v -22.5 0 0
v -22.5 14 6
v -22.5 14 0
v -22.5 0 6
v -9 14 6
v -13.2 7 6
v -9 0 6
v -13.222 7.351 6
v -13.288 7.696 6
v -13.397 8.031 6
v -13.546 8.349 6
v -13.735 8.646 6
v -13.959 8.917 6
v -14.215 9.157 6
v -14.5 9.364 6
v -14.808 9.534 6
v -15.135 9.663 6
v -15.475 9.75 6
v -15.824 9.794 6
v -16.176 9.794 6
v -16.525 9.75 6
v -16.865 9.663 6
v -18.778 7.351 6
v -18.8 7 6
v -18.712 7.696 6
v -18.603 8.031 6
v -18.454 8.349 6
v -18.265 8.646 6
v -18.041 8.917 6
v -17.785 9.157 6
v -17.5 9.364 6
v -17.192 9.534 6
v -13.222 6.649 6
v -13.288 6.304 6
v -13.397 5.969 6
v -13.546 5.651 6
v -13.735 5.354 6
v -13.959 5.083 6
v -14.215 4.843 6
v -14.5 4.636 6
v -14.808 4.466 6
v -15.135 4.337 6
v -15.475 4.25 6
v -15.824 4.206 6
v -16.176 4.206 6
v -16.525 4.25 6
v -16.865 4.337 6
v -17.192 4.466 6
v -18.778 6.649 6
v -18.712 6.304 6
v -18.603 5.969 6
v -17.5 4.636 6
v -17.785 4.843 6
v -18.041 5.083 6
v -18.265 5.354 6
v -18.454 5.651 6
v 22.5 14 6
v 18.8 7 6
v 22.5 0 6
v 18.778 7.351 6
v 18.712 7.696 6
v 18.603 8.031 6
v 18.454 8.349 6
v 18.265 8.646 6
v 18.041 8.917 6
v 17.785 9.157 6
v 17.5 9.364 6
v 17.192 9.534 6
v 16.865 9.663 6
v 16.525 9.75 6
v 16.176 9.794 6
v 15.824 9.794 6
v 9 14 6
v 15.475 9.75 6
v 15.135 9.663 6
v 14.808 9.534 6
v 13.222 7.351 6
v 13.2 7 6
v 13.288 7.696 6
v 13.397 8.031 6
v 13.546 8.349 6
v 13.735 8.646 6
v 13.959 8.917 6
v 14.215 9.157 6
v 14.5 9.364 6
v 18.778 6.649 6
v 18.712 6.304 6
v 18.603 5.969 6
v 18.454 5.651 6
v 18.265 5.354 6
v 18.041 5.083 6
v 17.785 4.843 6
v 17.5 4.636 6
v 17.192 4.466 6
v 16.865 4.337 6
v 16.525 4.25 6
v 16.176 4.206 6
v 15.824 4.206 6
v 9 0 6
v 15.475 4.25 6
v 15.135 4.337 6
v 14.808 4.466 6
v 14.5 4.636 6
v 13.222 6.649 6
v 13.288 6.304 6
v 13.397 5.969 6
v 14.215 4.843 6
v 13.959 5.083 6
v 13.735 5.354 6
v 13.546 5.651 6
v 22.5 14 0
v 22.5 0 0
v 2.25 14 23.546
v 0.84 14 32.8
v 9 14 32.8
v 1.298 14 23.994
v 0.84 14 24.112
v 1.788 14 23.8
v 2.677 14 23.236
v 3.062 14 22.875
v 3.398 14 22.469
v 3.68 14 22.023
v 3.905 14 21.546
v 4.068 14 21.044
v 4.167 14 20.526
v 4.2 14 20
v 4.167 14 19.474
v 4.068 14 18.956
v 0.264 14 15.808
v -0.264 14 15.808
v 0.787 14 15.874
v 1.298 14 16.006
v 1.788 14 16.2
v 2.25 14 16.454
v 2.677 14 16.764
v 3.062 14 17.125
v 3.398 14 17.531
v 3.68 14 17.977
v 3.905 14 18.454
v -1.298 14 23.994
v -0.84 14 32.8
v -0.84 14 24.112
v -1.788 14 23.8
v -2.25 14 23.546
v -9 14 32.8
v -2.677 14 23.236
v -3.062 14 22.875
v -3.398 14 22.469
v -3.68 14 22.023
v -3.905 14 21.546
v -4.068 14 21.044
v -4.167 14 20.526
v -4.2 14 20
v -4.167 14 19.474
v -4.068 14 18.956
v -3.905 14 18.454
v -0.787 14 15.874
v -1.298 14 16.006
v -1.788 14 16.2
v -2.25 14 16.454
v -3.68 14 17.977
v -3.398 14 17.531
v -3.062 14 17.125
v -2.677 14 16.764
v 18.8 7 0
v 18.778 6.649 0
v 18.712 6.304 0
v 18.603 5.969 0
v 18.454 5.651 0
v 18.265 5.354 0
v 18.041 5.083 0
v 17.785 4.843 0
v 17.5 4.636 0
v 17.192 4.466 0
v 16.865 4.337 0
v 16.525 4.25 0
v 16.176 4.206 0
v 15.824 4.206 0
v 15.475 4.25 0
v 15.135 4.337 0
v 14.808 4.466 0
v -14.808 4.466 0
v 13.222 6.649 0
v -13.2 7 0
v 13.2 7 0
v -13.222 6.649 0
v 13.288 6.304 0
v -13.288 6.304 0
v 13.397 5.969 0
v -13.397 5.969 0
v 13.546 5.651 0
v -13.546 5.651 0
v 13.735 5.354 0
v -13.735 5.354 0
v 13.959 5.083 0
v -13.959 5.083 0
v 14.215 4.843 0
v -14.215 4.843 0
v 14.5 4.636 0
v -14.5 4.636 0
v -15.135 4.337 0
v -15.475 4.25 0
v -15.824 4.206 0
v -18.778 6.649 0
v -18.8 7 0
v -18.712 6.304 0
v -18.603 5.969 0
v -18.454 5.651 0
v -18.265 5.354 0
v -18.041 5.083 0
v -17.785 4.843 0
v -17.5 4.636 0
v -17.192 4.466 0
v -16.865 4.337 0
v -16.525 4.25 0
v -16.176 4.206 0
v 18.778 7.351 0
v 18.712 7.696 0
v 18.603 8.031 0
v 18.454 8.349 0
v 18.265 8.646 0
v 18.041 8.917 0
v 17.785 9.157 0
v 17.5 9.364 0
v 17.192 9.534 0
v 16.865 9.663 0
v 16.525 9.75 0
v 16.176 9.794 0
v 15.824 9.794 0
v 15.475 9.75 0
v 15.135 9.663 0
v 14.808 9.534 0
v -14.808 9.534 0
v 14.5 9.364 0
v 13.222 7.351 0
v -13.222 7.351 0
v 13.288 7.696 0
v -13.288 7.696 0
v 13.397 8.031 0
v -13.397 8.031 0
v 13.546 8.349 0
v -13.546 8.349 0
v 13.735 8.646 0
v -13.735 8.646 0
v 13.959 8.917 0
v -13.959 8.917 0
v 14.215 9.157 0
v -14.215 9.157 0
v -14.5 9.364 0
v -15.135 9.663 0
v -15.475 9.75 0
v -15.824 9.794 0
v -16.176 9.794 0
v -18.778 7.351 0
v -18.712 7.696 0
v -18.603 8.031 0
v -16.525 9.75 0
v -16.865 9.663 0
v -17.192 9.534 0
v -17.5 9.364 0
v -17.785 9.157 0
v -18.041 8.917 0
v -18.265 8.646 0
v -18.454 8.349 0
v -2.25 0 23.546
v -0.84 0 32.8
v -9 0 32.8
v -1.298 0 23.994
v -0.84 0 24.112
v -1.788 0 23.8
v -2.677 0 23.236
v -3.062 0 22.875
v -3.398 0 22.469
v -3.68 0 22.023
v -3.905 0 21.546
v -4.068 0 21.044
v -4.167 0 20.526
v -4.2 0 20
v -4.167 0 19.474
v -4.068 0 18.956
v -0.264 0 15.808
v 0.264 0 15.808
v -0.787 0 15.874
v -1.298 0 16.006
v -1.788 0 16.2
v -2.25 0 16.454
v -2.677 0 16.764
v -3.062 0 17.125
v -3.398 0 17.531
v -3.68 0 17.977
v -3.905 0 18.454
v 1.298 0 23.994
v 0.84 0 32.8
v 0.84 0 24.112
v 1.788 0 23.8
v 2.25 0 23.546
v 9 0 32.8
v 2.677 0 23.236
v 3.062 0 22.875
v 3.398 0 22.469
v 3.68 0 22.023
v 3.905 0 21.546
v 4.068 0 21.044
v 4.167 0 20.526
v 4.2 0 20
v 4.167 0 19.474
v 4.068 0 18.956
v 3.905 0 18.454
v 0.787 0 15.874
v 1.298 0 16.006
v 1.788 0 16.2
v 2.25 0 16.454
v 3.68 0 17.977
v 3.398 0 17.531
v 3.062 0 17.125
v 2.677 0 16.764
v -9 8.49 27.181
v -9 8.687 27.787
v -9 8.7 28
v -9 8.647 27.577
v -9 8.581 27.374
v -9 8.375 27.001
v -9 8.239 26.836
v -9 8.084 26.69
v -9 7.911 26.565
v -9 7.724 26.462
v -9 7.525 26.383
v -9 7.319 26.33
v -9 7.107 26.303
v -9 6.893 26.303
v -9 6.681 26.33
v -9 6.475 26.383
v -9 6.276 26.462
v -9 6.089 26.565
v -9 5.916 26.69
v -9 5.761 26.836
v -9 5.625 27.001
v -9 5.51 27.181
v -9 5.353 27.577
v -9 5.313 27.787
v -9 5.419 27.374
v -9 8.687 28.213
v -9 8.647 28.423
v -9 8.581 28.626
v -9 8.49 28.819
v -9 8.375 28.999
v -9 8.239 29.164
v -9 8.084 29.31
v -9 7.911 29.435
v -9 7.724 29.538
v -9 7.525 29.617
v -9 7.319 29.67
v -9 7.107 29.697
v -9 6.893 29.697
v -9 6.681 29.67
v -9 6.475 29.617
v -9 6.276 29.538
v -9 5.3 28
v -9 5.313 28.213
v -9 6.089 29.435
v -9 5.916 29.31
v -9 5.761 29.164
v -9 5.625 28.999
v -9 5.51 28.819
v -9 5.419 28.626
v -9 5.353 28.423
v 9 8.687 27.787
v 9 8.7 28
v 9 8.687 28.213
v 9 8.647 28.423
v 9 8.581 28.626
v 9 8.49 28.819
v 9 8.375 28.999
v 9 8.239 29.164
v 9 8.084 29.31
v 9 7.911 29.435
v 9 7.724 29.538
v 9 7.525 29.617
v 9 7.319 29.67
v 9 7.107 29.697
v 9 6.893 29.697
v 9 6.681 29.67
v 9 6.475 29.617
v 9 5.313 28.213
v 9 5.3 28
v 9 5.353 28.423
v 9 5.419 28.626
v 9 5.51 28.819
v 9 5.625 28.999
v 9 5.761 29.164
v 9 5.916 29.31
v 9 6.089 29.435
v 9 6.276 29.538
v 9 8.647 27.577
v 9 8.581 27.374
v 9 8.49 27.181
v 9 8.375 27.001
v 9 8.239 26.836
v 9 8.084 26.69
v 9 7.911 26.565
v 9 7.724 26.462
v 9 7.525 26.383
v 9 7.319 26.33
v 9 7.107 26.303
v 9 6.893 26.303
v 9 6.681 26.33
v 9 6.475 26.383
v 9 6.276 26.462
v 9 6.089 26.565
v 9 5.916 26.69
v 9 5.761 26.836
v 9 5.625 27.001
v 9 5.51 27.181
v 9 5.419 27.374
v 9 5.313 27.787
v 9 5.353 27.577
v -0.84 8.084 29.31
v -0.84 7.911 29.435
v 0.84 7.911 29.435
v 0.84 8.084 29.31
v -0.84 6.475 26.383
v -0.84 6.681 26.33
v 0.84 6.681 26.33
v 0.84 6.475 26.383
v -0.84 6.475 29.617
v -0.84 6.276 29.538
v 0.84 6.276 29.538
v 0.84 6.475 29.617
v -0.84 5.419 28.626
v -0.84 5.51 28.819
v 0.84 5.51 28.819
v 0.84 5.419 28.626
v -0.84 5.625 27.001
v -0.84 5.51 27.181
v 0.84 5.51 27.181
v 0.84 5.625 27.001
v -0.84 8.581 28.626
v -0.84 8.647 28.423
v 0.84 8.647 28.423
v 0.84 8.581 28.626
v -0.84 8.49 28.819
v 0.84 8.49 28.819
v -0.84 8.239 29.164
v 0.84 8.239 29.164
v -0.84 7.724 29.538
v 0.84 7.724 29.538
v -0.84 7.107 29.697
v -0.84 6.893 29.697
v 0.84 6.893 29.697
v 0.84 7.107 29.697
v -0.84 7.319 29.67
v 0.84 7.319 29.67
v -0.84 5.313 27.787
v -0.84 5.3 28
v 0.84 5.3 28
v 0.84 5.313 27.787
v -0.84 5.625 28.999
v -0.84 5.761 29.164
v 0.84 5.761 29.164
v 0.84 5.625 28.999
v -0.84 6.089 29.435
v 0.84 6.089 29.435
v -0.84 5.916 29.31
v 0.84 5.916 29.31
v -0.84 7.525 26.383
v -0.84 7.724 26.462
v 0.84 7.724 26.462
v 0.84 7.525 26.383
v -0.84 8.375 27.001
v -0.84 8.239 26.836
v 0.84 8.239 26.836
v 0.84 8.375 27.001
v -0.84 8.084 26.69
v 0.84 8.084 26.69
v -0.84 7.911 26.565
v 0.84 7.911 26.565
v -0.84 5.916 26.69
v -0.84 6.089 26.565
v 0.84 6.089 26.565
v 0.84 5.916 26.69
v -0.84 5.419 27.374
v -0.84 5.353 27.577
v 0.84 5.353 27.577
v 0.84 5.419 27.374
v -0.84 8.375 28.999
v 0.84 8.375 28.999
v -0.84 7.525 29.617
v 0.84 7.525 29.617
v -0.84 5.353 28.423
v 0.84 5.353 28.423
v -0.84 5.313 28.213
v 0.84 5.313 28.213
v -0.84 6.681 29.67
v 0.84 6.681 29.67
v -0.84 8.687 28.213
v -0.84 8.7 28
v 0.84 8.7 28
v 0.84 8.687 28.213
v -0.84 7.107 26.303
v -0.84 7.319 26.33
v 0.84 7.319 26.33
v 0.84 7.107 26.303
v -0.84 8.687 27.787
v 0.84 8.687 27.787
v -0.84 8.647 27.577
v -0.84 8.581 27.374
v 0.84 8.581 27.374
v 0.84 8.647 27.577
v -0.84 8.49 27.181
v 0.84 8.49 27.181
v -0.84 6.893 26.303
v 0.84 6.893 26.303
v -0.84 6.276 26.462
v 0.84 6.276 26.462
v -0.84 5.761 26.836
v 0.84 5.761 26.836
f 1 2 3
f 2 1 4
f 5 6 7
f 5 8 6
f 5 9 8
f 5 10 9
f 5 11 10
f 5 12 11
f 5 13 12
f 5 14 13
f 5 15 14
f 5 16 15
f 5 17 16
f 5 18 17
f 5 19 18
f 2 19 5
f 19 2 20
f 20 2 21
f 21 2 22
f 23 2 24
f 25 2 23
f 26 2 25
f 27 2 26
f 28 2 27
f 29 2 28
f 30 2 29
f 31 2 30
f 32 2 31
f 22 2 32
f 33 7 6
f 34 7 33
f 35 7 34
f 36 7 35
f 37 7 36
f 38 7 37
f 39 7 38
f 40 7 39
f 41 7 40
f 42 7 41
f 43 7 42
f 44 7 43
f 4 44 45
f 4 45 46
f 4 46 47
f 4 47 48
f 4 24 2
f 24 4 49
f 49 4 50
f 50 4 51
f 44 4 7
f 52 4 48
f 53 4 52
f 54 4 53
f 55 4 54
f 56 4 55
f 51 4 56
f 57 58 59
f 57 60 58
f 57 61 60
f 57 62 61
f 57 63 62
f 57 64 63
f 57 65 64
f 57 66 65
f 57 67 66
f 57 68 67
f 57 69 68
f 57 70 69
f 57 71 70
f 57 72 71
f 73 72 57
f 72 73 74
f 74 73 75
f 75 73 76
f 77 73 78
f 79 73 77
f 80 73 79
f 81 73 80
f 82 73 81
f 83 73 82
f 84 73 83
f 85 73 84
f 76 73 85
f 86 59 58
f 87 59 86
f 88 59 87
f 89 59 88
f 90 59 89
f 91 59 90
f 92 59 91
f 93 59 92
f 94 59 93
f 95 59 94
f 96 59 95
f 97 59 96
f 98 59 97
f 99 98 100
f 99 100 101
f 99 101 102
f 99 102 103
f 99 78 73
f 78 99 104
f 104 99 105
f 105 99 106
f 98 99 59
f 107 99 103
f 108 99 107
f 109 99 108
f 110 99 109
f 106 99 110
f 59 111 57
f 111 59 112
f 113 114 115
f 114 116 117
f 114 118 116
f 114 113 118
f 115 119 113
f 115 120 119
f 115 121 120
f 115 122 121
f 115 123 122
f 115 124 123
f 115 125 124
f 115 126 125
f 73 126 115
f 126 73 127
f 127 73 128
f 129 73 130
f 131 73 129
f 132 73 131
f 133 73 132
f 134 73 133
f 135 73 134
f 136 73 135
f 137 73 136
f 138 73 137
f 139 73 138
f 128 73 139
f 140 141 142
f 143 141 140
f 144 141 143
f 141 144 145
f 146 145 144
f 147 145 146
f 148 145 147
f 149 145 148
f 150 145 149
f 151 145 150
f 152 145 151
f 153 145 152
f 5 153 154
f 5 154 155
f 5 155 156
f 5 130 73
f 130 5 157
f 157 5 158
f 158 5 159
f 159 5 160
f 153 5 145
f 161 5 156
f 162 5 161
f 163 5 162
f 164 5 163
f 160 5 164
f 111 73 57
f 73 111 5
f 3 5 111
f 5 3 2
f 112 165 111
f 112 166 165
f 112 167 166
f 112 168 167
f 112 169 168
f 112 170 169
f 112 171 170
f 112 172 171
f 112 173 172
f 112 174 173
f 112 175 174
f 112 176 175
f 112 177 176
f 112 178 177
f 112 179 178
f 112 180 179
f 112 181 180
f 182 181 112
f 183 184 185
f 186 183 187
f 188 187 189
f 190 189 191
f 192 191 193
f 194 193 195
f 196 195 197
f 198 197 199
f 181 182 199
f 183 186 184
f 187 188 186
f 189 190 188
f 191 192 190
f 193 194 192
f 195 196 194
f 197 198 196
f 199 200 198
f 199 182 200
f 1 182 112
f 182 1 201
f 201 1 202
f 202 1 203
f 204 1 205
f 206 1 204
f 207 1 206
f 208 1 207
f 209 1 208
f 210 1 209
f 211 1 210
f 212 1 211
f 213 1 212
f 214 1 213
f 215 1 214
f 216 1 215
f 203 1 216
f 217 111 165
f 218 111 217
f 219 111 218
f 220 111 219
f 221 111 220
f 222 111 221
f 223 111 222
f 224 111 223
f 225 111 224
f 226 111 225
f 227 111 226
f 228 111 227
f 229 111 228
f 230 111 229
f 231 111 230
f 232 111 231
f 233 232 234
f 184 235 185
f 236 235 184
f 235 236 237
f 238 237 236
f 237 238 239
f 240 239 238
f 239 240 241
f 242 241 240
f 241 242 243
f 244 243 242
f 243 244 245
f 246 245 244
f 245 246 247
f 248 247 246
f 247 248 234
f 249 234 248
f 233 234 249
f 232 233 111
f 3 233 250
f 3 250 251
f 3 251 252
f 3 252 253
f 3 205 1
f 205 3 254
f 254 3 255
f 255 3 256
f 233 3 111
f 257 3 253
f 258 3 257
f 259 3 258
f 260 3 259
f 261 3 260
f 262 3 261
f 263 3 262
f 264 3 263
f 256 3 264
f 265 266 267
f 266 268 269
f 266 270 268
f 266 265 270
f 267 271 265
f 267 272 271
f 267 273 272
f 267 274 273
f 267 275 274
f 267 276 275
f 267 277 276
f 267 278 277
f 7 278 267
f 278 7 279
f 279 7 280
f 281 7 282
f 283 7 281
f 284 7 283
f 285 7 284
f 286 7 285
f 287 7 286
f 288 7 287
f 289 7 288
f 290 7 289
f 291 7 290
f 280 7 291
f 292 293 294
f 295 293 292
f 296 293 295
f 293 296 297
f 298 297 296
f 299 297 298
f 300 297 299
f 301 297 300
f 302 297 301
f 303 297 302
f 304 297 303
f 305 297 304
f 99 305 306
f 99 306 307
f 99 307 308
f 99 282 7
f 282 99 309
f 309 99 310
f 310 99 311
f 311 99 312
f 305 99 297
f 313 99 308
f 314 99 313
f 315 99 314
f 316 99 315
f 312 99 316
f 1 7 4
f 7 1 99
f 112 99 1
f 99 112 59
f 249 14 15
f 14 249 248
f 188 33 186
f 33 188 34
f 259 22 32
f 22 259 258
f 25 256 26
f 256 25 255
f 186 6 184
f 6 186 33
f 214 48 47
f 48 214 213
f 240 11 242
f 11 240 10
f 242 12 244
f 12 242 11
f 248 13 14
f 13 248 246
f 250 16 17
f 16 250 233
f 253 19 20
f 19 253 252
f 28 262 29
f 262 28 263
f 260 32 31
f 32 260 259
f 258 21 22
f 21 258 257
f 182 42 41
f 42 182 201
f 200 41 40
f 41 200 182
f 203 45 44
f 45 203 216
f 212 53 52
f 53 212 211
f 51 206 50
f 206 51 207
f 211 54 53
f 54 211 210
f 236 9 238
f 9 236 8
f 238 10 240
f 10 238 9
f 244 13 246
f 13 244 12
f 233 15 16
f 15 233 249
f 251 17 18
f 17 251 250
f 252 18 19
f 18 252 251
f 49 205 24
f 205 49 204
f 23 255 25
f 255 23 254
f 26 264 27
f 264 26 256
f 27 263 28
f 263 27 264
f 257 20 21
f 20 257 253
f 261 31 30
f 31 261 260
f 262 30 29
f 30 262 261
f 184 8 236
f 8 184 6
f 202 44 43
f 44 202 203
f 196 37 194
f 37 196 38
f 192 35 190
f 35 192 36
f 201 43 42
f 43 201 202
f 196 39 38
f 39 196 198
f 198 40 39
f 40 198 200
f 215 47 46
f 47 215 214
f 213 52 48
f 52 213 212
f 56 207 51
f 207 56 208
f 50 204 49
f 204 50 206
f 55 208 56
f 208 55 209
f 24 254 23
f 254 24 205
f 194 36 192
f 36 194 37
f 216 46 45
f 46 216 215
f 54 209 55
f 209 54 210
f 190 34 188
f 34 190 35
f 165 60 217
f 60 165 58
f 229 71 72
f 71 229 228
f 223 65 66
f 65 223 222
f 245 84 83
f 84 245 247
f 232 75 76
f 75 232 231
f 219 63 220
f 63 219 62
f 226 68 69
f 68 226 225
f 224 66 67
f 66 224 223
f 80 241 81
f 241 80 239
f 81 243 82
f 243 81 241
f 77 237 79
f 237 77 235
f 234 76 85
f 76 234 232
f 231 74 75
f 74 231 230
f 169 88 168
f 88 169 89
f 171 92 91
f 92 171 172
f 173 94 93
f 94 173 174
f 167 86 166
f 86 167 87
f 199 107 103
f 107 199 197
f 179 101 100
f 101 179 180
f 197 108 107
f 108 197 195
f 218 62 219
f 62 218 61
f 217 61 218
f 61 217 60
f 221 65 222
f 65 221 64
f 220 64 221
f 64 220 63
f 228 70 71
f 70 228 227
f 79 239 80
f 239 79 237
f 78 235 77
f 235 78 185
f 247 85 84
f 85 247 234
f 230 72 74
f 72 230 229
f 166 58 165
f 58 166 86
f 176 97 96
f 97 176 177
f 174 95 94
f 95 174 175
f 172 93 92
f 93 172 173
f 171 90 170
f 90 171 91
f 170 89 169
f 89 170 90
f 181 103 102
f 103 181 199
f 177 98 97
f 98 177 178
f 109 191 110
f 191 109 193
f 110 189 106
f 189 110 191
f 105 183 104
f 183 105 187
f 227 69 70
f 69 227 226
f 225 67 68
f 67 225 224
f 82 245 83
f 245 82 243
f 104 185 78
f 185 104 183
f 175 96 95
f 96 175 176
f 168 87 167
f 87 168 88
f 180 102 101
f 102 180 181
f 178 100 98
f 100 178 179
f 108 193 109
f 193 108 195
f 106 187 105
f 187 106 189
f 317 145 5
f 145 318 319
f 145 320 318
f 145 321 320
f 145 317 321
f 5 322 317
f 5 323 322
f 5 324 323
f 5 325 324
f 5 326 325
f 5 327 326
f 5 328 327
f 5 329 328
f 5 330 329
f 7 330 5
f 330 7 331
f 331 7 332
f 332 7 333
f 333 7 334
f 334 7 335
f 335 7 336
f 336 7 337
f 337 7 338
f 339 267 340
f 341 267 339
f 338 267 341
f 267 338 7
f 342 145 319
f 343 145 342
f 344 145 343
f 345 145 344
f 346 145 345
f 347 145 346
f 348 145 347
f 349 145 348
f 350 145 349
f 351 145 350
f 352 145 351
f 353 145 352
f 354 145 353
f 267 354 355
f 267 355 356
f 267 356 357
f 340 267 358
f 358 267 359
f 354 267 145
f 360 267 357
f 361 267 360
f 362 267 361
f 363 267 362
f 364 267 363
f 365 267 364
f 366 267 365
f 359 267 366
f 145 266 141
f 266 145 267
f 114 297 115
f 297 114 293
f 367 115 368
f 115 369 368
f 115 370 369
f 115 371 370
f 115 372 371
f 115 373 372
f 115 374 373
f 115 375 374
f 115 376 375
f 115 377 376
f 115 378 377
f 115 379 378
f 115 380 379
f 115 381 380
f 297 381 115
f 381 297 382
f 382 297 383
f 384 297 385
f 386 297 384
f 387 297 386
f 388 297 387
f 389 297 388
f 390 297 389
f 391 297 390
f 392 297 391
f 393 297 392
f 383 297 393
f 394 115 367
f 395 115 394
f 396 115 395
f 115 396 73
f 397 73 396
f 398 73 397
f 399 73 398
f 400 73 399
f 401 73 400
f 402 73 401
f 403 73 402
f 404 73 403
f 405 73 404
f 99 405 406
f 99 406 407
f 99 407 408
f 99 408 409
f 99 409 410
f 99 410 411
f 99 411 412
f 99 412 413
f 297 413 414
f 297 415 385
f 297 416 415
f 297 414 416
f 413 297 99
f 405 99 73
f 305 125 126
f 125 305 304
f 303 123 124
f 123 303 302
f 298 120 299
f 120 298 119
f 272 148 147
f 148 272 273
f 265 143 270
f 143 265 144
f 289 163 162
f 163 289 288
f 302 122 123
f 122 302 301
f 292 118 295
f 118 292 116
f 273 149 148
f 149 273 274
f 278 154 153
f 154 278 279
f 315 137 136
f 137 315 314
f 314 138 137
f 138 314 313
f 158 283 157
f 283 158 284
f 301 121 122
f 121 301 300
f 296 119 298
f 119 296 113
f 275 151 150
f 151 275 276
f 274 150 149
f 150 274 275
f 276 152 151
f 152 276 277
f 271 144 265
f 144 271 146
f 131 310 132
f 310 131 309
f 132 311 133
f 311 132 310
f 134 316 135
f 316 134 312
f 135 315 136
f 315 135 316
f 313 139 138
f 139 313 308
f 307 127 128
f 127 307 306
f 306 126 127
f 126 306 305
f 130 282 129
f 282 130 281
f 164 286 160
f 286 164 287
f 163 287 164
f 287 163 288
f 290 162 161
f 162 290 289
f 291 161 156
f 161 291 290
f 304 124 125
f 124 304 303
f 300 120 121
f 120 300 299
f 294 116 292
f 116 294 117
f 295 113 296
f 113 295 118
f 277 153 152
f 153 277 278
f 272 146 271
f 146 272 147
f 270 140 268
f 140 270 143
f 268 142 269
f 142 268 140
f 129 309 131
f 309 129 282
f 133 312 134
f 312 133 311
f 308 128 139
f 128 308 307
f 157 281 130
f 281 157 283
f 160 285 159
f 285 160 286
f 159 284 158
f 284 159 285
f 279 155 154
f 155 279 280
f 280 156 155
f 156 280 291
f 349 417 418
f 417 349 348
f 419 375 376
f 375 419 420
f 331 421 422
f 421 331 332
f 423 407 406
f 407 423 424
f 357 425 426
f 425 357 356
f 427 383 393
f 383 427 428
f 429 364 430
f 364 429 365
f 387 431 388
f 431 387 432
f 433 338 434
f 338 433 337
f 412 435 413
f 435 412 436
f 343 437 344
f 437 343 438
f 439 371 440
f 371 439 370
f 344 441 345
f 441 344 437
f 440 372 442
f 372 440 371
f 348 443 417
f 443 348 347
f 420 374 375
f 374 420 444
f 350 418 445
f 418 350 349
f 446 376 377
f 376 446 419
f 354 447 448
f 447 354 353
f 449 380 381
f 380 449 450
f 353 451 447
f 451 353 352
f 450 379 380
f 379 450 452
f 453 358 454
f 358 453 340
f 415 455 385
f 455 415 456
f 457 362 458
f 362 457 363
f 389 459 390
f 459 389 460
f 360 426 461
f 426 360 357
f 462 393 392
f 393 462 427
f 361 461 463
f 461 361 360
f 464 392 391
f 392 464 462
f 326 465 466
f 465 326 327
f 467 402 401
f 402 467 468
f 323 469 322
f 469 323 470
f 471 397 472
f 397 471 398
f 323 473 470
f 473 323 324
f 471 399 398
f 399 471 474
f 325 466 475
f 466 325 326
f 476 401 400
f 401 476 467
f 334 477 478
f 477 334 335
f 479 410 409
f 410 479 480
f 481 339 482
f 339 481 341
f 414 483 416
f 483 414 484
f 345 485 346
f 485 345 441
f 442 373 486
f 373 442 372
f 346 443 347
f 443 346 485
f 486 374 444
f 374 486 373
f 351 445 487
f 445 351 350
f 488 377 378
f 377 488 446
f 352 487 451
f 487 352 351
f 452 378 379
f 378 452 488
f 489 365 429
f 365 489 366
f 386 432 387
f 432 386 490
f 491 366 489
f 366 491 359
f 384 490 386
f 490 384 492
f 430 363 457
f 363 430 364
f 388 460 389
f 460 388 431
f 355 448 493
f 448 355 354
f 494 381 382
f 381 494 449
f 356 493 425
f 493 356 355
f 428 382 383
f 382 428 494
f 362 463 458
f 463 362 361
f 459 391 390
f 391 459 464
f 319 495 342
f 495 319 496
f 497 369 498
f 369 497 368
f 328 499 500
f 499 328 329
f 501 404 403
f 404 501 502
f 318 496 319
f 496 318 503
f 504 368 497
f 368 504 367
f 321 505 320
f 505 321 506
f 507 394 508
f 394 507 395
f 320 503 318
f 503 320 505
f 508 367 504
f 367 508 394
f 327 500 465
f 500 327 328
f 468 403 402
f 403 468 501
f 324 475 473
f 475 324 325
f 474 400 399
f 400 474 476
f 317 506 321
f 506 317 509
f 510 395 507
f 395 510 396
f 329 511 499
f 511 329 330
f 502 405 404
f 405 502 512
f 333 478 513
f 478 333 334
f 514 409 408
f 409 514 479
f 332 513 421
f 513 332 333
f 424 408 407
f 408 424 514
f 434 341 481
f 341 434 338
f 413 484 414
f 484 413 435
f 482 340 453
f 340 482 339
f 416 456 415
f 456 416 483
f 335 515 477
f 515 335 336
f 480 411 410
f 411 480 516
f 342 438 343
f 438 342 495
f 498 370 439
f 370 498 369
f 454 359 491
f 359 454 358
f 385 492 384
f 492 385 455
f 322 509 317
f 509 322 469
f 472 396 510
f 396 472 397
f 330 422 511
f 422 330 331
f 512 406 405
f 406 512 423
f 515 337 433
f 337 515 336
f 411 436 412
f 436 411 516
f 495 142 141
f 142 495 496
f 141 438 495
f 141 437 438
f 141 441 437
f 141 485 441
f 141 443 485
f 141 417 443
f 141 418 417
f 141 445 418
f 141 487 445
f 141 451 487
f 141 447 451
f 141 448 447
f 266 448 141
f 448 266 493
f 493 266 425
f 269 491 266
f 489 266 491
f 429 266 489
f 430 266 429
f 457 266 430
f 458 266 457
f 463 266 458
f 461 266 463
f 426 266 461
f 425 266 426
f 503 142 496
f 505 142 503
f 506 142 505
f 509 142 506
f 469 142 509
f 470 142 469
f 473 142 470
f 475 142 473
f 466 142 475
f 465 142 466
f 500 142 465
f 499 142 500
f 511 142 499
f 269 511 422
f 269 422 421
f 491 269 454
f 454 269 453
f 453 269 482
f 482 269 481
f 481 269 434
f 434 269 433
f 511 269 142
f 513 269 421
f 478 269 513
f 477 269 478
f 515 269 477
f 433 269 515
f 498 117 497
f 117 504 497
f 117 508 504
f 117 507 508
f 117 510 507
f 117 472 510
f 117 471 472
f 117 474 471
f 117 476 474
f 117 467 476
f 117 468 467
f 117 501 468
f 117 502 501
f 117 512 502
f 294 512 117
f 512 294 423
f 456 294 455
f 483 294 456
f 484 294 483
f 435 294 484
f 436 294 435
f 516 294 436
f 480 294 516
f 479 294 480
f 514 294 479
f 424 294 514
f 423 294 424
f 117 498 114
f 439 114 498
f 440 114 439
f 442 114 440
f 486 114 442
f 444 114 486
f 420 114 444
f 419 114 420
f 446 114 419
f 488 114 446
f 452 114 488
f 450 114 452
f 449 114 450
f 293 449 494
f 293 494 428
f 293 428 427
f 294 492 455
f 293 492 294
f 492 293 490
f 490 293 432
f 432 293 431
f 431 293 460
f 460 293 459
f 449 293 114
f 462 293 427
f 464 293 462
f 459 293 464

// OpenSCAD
$fn = 50;

// SK8 Original Dimensions
h = 20;
E = 21;
W = 45; // Original W = 42
L = 14;
F = 32.8;
G = 6;
P = 18;
B = 32;
S = 5.5;
Set_screw = 3+0.4;  // M3   Original is M4
Attach_Screws = 5+0.6; //M5
rod_dia = 8+0.4;

// *** SK8 *** \\
// Base
module sk8_base(){
    difference(){
        translate([-W/2,0,0]) cube([W,L,G]);
        translate([-B/2,L/2,-0.5*G]) cylinder(d=Attach_Screws,2*G,true);
        translate([+B/2,L/2,-0.5*G]) cylinder(d=Attach_Screws,2*G,true);
    }
}

// Top
module sk8_top(){
    difference(){
        translate([-P/2,0,0]) cube([P,L,F]);
        // Rod
        translate([0,1.5*L,h]) rotate([90,0,0]) cylinder(d=rod_dia,2*L,true);
        // Set Screw
        translate([-P,L/2,h+8]) rotate([90,0,90]) cylinder(d=Set_screw,2*P,true);
        // Split
        translate([-1/5*rod_dia/2,-0.5*L,h]) cube([1/5*rod_dia,2*L,h]);
    }
}

sk8_base();
sk8_top();
